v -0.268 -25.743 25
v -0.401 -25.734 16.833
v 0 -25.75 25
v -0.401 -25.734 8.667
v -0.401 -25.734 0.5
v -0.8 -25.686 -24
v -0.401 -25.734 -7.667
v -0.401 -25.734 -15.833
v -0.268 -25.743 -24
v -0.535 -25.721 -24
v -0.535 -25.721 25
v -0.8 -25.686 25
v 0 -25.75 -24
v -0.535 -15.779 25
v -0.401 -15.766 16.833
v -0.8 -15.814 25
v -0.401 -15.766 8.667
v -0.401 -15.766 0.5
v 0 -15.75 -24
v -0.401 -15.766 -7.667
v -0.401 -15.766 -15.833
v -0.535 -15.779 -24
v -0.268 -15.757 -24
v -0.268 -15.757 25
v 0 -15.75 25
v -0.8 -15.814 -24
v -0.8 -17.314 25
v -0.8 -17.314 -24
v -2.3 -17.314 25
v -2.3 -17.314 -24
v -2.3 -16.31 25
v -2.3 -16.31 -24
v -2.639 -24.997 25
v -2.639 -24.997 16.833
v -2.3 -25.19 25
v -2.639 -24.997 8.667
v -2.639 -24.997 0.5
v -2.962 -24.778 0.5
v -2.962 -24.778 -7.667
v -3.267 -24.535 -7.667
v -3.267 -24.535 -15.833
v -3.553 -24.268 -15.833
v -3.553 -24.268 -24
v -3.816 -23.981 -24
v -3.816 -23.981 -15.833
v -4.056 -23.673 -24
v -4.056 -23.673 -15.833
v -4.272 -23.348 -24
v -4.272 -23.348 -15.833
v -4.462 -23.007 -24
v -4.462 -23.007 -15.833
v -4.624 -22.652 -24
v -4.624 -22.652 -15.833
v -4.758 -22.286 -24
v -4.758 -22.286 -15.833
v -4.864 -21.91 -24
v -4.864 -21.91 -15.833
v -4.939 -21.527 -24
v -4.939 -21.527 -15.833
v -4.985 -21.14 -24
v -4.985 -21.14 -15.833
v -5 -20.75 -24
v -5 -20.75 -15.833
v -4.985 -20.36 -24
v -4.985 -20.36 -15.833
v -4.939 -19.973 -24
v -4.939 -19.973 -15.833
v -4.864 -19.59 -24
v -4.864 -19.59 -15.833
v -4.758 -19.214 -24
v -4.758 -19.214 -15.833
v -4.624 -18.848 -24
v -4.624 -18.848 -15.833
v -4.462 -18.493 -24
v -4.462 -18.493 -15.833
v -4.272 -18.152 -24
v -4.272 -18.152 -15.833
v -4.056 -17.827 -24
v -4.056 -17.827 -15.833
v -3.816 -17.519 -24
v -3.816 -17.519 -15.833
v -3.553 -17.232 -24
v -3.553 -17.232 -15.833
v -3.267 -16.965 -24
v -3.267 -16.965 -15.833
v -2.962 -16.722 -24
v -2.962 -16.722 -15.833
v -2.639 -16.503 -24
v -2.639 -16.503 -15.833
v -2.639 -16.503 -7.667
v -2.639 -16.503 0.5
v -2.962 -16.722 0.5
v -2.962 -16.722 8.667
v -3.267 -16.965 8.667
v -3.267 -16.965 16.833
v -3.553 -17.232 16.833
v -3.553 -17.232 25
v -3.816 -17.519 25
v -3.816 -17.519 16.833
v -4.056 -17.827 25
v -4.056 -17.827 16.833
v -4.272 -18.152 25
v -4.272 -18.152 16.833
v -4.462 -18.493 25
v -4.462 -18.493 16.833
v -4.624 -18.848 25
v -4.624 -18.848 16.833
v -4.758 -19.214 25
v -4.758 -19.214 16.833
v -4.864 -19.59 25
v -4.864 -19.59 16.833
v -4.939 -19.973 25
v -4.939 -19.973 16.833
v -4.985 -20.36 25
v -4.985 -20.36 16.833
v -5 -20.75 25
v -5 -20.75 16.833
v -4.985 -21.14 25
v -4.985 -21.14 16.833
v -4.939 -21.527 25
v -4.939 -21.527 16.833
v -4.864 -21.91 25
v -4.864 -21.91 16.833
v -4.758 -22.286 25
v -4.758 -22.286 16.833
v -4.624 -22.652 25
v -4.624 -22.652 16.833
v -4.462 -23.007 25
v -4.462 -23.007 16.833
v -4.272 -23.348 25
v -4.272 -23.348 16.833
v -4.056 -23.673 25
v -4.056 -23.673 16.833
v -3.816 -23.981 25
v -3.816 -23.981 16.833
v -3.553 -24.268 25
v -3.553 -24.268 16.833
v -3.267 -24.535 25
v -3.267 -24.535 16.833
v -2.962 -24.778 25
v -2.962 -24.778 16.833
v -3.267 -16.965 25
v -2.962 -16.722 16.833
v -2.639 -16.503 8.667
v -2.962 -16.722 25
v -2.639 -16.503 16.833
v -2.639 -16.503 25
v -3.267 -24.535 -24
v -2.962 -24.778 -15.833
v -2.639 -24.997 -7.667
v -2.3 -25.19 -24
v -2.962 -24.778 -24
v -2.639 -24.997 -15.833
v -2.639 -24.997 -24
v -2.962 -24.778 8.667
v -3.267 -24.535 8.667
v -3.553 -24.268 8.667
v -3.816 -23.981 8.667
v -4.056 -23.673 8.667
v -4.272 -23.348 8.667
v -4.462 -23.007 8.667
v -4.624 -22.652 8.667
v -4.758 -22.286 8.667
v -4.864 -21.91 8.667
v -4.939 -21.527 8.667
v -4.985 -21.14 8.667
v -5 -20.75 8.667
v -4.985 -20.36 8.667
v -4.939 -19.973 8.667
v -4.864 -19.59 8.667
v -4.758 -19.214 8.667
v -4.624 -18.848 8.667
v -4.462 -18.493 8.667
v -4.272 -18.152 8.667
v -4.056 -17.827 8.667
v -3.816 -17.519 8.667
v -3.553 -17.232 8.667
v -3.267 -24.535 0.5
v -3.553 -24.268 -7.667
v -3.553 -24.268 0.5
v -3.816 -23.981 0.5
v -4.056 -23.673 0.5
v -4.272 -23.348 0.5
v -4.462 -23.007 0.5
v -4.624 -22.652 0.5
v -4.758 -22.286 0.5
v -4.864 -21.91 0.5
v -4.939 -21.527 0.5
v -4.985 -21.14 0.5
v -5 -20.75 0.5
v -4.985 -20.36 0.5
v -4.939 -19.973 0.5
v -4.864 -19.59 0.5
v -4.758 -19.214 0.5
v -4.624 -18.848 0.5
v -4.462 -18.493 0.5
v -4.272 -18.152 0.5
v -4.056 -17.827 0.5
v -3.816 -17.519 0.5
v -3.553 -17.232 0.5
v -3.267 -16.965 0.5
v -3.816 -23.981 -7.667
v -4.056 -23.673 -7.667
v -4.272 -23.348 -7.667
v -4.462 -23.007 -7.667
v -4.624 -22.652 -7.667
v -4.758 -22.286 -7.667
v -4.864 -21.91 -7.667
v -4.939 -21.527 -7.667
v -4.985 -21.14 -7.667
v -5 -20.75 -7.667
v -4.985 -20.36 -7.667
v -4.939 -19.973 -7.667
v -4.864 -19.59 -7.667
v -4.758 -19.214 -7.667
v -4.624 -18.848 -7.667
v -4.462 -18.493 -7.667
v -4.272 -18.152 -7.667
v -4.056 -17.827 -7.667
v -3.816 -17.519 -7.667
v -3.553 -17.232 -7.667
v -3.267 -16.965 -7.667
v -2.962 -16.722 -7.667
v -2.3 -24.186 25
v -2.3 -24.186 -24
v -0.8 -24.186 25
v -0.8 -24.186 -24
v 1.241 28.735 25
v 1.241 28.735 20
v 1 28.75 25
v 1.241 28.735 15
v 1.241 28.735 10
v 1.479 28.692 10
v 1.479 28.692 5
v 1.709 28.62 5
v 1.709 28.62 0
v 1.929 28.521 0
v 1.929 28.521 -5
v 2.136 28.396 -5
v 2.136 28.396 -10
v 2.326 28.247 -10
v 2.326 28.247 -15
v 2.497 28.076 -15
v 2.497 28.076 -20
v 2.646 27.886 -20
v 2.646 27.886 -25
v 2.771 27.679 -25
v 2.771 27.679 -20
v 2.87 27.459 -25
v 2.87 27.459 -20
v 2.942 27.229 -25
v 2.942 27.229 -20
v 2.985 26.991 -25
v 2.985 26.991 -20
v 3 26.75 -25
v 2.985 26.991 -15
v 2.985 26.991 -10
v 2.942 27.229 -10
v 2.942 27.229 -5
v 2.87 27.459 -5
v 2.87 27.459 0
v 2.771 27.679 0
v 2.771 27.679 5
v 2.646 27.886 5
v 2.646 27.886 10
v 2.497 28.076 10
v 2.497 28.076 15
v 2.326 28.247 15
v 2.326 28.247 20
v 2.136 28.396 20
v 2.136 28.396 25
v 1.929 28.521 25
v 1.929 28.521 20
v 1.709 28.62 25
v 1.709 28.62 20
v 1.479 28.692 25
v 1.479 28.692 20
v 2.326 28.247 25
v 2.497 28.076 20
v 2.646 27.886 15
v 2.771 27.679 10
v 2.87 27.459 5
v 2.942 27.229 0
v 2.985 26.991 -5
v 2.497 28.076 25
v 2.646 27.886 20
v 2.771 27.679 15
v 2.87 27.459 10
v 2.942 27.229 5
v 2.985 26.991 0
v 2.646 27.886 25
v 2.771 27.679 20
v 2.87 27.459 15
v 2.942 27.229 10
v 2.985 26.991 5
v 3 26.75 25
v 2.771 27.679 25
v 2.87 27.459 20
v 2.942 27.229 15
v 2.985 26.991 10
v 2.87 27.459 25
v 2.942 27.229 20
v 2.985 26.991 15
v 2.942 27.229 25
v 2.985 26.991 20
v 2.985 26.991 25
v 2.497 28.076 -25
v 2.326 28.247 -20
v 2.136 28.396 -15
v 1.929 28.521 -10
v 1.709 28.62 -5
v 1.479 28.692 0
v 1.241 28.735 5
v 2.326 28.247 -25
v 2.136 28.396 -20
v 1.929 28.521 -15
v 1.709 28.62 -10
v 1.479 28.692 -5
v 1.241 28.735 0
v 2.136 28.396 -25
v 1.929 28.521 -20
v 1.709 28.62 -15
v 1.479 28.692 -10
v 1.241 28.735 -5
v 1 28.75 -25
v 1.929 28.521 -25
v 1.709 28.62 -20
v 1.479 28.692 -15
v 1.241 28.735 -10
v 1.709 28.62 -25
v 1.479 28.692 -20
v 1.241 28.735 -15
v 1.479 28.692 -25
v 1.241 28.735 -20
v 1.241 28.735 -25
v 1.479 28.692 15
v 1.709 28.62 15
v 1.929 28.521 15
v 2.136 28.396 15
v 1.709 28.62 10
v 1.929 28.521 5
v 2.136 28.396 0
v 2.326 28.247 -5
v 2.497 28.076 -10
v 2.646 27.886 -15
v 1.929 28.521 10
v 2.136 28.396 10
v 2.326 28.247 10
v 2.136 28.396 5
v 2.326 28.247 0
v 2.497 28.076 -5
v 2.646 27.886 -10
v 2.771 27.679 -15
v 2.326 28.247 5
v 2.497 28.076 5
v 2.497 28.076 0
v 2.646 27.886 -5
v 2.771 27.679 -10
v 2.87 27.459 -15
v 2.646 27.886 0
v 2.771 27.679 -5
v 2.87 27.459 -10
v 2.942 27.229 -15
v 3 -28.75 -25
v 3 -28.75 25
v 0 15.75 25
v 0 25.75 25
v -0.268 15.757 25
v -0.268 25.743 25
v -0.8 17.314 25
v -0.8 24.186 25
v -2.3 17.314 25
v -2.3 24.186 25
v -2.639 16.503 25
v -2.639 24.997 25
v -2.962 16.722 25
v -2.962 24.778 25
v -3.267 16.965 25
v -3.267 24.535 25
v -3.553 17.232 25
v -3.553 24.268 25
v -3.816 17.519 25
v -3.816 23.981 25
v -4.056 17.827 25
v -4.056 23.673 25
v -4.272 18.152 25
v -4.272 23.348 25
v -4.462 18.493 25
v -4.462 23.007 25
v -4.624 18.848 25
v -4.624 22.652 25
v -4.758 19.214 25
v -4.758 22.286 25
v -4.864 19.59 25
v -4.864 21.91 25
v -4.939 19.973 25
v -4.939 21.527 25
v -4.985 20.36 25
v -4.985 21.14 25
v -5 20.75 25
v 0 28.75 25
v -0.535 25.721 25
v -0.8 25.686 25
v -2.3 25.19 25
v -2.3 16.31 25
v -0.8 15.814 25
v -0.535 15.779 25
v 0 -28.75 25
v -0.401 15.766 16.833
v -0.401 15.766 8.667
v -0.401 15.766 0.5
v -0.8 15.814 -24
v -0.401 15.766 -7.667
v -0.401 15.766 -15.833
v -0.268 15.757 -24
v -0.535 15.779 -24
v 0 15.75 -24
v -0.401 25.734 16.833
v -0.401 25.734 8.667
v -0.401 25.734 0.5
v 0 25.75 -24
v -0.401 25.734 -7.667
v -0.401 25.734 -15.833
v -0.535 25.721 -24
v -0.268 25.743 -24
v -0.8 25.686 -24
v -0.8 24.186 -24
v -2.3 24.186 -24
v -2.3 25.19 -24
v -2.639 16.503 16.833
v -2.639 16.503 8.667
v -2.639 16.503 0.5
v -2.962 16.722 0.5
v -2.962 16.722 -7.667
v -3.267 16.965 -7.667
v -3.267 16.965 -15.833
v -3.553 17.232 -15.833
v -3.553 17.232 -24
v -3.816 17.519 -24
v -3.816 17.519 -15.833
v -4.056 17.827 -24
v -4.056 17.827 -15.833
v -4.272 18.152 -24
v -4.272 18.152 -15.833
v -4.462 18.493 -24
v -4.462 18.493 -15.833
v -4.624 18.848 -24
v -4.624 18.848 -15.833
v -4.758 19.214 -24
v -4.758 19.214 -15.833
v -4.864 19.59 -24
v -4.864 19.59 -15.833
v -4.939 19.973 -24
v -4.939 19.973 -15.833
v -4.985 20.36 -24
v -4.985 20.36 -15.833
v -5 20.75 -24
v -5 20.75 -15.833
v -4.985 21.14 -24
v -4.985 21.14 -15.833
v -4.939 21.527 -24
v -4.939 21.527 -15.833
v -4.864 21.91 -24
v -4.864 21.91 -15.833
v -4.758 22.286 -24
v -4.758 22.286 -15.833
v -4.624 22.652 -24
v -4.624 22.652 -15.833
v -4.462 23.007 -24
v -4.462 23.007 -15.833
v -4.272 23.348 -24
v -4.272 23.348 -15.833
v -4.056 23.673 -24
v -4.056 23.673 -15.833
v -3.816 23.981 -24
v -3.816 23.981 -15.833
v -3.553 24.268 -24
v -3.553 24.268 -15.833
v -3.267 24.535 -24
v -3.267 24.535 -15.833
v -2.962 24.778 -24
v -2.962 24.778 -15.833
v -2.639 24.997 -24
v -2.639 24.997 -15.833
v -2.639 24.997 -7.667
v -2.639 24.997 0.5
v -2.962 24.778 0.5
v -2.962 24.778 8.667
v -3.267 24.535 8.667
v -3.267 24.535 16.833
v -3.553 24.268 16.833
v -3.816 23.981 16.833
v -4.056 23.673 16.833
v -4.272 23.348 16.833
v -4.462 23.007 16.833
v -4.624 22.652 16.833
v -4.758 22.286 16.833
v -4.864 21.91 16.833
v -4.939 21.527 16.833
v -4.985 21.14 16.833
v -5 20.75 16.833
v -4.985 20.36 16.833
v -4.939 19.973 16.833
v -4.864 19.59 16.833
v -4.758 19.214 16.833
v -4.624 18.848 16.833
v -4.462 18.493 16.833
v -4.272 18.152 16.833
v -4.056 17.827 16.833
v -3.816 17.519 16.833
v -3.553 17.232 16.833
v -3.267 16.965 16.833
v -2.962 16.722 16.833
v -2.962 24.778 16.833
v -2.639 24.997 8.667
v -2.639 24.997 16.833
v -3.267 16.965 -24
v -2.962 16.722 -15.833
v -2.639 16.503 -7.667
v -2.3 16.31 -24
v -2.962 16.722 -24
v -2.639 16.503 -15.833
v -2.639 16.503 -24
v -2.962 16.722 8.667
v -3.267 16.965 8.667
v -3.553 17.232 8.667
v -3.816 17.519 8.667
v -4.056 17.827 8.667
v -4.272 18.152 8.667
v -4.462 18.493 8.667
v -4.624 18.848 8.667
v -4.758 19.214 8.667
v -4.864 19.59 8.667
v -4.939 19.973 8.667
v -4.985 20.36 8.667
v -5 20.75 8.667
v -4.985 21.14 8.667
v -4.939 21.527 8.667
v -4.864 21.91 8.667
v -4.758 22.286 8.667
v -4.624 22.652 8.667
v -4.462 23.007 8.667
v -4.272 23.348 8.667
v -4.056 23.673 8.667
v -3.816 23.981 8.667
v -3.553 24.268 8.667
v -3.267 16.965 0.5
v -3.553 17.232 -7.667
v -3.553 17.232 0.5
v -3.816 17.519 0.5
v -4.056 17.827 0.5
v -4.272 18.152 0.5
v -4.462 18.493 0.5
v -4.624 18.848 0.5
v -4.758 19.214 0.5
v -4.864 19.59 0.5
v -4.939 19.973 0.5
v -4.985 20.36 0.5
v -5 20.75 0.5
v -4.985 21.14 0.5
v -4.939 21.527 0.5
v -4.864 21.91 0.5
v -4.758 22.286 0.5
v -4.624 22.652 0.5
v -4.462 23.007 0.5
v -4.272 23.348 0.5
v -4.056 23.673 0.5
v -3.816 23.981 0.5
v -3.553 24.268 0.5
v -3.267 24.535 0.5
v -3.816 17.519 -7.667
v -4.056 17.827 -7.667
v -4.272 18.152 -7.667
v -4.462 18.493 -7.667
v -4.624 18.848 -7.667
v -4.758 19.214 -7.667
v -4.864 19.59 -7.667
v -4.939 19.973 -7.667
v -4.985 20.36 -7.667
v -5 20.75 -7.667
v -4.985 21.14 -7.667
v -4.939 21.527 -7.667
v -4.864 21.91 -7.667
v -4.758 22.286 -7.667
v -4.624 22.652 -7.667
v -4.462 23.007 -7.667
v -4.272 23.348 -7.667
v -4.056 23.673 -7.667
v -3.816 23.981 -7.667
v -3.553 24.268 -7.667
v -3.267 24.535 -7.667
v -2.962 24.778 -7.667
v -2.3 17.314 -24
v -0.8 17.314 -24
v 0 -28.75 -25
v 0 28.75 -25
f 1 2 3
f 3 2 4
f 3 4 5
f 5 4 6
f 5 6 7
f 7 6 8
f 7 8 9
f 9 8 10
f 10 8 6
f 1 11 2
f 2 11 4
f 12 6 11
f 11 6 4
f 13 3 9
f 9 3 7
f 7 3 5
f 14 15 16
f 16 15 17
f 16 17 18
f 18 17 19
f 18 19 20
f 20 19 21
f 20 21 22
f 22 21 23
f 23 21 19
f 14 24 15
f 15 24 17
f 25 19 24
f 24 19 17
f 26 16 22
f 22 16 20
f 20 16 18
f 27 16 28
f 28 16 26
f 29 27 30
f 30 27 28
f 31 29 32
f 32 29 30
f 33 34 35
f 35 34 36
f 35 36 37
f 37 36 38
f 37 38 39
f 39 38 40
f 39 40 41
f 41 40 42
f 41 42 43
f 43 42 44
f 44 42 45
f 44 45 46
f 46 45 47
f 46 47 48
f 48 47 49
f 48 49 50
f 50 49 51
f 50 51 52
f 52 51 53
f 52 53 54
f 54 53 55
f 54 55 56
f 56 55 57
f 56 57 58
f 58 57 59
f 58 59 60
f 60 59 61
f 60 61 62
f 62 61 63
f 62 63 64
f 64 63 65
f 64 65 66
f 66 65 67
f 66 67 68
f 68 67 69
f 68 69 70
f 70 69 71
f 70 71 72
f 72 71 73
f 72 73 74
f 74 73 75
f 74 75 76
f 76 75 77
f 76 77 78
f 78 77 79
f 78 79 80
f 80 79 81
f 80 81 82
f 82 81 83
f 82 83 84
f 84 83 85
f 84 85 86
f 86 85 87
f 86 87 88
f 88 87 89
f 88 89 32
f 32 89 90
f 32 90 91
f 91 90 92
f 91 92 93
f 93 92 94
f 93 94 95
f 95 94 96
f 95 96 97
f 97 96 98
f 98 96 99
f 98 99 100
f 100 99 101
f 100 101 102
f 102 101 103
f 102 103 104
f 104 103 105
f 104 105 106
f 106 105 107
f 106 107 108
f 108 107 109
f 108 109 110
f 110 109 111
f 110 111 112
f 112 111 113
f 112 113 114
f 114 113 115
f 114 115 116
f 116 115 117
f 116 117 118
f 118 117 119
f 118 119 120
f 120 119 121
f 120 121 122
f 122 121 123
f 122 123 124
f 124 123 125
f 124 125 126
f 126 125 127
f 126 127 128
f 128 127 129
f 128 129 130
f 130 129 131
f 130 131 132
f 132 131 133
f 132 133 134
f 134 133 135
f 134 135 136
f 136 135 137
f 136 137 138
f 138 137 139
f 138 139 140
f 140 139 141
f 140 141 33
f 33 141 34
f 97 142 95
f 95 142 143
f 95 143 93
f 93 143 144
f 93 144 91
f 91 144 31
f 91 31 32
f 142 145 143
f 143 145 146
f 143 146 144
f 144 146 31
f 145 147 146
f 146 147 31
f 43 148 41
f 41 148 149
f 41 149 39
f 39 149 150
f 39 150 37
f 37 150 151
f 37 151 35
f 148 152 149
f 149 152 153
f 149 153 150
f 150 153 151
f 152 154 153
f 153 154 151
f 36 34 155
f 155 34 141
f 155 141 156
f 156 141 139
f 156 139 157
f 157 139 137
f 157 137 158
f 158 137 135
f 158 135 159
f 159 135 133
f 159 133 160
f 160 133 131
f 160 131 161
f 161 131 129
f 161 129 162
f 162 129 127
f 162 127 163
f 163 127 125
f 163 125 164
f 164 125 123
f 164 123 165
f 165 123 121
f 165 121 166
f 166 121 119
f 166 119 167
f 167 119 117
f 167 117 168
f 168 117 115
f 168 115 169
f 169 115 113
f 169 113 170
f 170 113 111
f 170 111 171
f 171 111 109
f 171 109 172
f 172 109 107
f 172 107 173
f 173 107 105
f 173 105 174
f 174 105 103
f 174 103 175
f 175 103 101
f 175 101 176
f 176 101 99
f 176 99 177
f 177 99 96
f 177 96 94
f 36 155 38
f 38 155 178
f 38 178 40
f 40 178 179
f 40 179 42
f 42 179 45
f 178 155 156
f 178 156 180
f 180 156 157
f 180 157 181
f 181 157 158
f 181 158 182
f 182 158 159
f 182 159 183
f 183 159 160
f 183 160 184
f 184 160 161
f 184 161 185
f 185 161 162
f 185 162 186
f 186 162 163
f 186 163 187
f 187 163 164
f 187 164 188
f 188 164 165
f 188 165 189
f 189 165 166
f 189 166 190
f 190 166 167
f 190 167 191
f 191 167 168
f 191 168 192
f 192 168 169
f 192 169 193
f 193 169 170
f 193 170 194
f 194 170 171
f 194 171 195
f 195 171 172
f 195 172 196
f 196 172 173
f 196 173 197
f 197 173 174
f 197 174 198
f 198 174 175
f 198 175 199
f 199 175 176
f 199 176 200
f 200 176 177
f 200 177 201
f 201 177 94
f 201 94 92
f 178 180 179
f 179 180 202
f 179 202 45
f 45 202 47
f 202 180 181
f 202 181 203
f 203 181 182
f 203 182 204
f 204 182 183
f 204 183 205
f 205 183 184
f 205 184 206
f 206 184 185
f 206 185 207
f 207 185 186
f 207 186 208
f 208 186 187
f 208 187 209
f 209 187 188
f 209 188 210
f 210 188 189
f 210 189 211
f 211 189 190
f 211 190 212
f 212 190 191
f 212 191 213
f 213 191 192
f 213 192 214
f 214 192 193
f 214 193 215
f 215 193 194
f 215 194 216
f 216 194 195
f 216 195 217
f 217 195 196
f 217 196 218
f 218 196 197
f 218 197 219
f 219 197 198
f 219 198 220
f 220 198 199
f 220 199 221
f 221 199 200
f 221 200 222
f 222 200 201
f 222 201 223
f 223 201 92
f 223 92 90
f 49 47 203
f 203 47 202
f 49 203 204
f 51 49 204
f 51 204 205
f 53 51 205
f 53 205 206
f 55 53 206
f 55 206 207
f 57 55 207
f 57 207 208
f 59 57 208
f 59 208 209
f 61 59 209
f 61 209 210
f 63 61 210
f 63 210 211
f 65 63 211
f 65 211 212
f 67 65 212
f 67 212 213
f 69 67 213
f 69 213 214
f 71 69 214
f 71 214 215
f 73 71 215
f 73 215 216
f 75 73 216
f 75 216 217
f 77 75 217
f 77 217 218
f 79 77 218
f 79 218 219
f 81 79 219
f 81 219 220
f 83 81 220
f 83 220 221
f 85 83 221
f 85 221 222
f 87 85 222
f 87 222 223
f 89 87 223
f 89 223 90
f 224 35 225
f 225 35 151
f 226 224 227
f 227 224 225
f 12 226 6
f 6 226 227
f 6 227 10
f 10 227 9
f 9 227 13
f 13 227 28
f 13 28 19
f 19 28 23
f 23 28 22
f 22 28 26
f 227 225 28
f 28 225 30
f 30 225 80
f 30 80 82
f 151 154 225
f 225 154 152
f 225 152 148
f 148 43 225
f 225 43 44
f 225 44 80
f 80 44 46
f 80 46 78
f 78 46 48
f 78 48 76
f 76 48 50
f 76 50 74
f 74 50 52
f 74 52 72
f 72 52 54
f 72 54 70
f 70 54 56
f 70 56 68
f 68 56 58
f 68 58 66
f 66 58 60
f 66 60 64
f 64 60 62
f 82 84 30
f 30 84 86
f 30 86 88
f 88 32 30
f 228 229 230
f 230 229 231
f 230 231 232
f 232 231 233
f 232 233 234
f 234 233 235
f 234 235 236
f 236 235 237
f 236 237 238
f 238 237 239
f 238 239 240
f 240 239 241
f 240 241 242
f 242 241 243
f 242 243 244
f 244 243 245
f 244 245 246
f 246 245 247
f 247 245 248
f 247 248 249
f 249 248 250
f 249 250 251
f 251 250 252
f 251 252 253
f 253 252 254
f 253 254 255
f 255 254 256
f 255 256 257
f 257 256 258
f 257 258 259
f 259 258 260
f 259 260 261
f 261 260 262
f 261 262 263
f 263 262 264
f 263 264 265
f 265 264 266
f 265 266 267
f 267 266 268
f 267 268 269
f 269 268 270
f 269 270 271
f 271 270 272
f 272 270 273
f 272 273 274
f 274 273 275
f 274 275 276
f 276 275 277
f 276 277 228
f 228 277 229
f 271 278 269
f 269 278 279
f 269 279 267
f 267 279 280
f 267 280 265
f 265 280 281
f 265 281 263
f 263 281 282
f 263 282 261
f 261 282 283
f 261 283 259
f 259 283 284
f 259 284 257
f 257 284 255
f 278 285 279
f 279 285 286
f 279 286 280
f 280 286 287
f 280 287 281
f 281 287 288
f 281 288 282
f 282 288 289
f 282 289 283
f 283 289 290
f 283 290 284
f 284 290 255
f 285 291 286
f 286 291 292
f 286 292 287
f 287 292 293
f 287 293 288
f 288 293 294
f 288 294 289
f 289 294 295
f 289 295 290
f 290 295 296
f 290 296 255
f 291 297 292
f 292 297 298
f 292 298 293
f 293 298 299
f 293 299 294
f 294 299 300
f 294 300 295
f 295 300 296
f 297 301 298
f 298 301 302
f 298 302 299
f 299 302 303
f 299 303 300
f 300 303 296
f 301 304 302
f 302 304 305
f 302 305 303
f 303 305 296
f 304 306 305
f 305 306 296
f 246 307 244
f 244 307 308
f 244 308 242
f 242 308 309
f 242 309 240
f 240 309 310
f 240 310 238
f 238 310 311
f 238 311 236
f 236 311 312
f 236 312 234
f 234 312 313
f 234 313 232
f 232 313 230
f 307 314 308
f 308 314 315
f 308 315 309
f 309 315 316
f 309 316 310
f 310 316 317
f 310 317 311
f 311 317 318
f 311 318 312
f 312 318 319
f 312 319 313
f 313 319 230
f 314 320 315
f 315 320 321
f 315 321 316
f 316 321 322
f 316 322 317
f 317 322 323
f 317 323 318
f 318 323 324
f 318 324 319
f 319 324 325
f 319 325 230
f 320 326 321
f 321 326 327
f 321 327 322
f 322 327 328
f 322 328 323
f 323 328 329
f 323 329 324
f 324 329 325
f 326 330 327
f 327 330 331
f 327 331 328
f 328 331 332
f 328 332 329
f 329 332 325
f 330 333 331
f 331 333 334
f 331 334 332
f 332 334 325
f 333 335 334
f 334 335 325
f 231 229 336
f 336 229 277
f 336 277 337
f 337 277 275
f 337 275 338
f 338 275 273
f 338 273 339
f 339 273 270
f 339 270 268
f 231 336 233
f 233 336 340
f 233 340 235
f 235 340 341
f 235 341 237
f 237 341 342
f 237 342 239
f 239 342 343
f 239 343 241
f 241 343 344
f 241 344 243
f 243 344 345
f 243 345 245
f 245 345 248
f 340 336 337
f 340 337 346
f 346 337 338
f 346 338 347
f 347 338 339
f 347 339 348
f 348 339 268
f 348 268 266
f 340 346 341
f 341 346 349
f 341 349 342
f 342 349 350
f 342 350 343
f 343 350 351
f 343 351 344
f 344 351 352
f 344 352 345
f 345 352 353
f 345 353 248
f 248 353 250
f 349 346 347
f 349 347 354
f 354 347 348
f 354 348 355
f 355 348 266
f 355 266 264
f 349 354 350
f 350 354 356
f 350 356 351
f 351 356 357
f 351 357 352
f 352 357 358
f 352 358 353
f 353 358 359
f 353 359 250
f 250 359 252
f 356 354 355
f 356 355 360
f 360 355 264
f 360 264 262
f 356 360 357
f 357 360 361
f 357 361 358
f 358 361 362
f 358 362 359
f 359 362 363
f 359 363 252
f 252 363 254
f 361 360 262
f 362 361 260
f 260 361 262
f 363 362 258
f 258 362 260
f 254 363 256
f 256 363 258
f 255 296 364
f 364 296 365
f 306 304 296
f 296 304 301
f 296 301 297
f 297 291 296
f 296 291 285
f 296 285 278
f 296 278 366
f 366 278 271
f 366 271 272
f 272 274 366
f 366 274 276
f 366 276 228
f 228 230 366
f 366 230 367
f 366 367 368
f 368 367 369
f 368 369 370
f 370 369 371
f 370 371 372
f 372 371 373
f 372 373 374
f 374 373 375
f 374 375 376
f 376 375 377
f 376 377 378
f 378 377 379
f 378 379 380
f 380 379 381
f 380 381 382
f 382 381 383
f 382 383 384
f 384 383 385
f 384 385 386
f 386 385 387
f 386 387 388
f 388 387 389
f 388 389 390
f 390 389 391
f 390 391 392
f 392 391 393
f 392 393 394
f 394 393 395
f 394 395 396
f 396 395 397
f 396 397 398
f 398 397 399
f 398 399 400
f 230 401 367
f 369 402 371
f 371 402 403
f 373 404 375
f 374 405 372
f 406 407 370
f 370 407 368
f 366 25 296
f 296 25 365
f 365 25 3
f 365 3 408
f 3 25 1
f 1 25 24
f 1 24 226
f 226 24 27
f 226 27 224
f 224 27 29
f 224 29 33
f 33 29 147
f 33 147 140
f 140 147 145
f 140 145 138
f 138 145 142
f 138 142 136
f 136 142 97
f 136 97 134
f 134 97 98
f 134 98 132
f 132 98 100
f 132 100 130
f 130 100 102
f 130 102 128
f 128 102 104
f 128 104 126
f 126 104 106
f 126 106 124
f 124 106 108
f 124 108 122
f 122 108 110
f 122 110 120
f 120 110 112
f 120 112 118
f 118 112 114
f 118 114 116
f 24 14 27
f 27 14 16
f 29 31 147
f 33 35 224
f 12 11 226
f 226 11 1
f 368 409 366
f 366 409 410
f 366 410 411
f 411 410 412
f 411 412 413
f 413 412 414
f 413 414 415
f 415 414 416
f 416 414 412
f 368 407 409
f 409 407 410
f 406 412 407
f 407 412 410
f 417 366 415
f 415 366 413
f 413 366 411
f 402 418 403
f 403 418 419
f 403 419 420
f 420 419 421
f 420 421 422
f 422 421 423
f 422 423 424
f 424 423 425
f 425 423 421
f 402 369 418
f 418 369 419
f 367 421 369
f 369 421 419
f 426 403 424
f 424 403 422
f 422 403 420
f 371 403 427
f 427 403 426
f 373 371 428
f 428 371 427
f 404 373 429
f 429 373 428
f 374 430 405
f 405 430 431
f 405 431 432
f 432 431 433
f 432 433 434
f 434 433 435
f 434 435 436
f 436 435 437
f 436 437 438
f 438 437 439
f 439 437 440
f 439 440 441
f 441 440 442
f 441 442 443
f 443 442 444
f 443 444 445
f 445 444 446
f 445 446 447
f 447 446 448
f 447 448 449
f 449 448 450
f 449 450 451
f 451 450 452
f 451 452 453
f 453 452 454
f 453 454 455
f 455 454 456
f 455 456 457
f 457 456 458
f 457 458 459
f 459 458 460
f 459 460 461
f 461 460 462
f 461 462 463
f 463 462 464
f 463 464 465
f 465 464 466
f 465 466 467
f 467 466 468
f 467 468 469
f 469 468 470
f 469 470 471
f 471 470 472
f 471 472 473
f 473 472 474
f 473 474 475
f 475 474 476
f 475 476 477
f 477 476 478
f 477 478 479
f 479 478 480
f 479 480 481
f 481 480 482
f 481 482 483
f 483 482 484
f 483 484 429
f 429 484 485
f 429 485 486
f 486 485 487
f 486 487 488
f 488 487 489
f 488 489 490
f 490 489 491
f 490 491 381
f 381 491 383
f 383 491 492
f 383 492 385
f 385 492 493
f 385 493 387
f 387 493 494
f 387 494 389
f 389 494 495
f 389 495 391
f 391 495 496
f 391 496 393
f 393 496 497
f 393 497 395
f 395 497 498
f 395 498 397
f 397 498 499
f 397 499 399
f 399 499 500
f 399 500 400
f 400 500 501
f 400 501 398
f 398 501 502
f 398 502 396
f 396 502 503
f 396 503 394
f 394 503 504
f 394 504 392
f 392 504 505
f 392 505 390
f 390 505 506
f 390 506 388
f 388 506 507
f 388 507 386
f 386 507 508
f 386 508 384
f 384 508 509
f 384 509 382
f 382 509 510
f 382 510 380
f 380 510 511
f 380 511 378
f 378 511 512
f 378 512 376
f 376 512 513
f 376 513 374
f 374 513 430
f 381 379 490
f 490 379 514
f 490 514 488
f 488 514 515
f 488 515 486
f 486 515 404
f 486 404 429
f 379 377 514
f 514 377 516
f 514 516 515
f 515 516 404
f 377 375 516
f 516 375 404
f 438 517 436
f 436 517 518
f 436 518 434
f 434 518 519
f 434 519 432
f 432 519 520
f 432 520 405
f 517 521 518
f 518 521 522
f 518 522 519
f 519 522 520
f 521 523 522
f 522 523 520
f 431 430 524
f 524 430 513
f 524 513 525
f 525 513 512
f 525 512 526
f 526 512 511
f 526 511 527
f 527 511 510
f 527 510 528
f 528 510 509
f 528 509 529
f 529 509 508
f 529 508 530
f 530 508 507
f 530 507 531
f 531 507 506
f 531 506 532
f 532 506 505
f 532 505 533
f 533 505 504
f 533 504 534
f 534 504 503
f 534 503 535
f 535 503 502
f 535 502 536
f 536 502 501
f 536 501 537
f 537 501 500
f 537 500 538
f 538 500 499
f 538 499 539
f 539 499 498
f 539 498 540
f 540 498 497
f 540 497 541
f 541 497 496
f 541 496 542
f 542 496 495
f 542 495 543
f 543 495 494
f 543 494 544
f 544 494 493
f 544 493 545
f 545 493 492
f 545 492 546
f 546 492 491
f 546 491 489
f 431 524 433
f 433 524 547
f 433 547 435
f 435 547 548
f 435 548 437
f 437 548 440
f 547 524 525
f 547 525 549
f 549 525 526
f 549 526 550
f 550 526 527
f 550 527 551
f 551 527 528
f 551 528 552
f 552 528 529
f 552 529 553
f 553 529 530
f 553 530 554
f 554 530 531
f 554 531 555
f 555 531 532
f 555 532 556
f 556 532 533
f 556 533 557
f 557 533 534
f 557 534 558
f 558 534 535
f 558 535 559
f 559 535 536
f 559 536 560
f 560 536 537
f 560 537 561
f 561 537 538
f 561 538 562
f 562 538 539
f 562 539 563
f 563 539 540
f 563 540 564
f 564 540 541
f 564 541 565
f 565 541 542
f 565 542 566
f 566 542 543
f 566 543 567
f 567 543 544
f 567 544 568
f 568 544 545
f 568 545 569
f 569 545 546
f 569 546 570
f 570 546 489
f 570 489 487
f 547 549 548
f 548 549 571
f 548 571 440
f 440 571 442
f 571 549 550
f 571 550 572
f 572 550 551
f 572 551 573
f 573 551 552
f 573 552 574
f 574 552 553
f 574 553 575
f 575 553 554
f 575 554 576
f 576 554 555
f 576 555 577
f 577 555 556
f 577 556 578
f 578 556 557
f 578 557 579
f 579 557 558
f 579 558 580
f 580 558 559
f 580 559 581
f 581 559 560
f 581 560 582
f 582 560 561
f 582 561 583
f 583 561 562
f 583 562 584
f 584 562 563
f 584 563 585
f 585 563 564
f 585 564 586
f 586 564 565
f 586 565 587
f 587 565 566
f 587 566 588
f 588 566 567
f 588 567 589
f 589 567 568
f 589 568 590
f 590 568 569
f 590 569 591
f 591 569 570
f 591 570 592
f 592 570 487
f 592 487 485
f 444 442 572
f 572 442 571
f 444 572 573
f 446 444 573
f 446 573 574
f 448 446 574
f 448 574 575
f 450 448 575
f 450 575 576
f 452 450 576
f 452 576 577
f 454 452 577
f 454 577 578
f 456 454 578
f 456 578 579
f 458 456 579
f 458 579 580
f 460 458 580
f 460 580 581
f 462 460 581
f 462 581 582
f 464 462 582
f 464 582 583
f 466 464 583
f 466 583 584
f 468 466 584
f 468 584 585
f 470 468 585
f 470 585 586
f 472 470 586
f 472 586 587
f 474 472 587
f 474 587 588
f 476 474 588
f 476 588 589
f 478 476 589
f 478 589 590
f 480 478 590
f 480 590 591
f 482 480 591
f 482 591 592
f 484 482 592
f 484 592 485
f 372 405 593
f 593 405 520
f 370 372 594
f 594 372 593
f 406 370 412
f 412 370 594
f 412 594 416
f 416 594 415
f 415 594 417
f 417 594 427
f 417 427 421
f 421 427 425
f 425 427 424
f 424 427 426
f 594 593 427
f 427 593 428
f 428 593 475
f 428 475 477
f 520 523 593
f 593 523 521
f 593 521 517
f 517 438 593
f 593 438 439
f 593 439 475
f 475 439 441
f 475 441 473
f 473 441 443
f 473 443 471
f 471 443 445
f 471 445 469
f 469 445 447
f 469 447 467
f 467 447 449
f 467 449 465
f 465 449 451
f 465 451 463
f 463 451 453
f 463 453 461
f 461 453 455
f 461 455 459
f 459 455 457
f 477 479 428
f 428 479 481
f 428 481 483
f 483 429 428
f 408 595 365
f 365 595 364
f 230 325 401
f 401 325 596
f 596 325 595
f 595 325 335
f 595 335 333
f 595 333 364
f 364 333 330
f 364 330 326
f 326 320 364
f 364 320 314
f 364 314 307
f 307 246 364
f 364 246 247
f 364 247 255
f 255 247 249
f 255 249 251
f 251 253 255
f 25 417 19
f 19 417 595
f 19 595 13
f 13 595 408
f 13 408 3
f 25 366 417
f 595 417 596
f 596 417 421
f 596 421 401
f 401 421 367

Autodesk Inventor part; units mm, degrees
ref_plane "YZ Plane" through (0, 0, 0) normal (1, 0, 0) x (0, 1, 0)
ref_plane "XZ Plane" through (0, 0, 0) normal (0, 1, 0) x (-1, 0, 0)
ref_plane "XY Plane" through (0, 0, 0) normal (0, 0, 1) x (1, 0, 0)
sketch "Sketch1" plane through (0, 0, 0) normal (1, 0, 0) x (0, 1, 0)
  line L0 (-28.75, 25) -> (28.75, 25)
  line L1 (28.75, 25) -> (28.75, -25)
  line L2 (28.75, -25) -> (-28.75, -25)
  line L3 (-28.75, -25) -> (-28.75, 25)
  line L4 (-28.75, 25) -> (28.75, -25) construction
  line L5 (28.75, 25) -> (-28.75, -25) construction
  point P0 (0, 0)
  dimension "d0" = 57.5
  dimension "d1" = 50
extrude "Extrusion1" add sketch "Sketch1" along normal blind 3
sketch "Sketch4" plane through (0, -28.75, 25) normal (0, 0, 1) x (1, 0, 0)
  line L0 (0, 0) -> (0, 57.5) projected
  arc A0 (0, 54.5) -> (0, 44.5) centre (0, 49.5) ccw
  line L1 (-0.8, 44.5644) -> (-0.8, 46.0644)
  line L2 (-0.8, 46.0644) -> (-2.3, 46.0644)
  line L3 (-2.3, 46.0644) -> (-2.3, 45.0604)
  line L4 (-5, 49.5) -> (0, 49.5) construction
  line L5 (-0.8, 54.4356) -> (-0.8, 52.9356)
  line L6 (-0.8, 52.9356) -> (-2.3, 52.9356)
  line L7 (-2.3, 52.9356) -> (-2.3, 53.9396)
  line L8 (0, 0) -> (3, 0) projected
  arc A1 (0, 13) -> (0, 3) centre (0, 8) ccw
  line L9 (-0.8, 3.0644) -> (-0.8, 4.5644)
  line L10 (-0.8, 4.5644) -> (-2.3, 4.5644)
  line L11 (-2.3, 4.5644) -> (-2.3, 3.5604)
  line L12 (-5, 8) -> (0, 8) construction
  line L13 (-0.8, 12.9356) -> (-0.8, 11.4356)
  line L14 (-0.8, 11.4356) -> (-2.3, 11.4356)
  line L15 (-2.3, 11.4356) -> (-2.3, 12.4396)
  point P0 (0, 28.75)
  point P1 (-2.3, 53.9396)
  dimension "d15" = 1.5
  dimension "d16" = 1.5
  dimension "d17" = 0.8
  dimension "d25" = 3
  dimension "d26" = 10
  dimension "d28" = 1.5
  dimension "d31" = 10
  dimension "d32" = 3
  dimension "d33" = 1.5
extrude "Extrusion3" add sketch "Sketch4" against normal blind 49 contours A0 L1 L2 L3 L7 L6 L5 L0
fillet "Fillet2" radius 2 1 edges at (3, 28.75, 0)
extrude "Extrusion4" add sketch "Sketch4" against normal blind 49 contours A1 L9 L10 L11 L15 L14 L13 L0
properties part number "Cover of Sensors_3DPrint"
